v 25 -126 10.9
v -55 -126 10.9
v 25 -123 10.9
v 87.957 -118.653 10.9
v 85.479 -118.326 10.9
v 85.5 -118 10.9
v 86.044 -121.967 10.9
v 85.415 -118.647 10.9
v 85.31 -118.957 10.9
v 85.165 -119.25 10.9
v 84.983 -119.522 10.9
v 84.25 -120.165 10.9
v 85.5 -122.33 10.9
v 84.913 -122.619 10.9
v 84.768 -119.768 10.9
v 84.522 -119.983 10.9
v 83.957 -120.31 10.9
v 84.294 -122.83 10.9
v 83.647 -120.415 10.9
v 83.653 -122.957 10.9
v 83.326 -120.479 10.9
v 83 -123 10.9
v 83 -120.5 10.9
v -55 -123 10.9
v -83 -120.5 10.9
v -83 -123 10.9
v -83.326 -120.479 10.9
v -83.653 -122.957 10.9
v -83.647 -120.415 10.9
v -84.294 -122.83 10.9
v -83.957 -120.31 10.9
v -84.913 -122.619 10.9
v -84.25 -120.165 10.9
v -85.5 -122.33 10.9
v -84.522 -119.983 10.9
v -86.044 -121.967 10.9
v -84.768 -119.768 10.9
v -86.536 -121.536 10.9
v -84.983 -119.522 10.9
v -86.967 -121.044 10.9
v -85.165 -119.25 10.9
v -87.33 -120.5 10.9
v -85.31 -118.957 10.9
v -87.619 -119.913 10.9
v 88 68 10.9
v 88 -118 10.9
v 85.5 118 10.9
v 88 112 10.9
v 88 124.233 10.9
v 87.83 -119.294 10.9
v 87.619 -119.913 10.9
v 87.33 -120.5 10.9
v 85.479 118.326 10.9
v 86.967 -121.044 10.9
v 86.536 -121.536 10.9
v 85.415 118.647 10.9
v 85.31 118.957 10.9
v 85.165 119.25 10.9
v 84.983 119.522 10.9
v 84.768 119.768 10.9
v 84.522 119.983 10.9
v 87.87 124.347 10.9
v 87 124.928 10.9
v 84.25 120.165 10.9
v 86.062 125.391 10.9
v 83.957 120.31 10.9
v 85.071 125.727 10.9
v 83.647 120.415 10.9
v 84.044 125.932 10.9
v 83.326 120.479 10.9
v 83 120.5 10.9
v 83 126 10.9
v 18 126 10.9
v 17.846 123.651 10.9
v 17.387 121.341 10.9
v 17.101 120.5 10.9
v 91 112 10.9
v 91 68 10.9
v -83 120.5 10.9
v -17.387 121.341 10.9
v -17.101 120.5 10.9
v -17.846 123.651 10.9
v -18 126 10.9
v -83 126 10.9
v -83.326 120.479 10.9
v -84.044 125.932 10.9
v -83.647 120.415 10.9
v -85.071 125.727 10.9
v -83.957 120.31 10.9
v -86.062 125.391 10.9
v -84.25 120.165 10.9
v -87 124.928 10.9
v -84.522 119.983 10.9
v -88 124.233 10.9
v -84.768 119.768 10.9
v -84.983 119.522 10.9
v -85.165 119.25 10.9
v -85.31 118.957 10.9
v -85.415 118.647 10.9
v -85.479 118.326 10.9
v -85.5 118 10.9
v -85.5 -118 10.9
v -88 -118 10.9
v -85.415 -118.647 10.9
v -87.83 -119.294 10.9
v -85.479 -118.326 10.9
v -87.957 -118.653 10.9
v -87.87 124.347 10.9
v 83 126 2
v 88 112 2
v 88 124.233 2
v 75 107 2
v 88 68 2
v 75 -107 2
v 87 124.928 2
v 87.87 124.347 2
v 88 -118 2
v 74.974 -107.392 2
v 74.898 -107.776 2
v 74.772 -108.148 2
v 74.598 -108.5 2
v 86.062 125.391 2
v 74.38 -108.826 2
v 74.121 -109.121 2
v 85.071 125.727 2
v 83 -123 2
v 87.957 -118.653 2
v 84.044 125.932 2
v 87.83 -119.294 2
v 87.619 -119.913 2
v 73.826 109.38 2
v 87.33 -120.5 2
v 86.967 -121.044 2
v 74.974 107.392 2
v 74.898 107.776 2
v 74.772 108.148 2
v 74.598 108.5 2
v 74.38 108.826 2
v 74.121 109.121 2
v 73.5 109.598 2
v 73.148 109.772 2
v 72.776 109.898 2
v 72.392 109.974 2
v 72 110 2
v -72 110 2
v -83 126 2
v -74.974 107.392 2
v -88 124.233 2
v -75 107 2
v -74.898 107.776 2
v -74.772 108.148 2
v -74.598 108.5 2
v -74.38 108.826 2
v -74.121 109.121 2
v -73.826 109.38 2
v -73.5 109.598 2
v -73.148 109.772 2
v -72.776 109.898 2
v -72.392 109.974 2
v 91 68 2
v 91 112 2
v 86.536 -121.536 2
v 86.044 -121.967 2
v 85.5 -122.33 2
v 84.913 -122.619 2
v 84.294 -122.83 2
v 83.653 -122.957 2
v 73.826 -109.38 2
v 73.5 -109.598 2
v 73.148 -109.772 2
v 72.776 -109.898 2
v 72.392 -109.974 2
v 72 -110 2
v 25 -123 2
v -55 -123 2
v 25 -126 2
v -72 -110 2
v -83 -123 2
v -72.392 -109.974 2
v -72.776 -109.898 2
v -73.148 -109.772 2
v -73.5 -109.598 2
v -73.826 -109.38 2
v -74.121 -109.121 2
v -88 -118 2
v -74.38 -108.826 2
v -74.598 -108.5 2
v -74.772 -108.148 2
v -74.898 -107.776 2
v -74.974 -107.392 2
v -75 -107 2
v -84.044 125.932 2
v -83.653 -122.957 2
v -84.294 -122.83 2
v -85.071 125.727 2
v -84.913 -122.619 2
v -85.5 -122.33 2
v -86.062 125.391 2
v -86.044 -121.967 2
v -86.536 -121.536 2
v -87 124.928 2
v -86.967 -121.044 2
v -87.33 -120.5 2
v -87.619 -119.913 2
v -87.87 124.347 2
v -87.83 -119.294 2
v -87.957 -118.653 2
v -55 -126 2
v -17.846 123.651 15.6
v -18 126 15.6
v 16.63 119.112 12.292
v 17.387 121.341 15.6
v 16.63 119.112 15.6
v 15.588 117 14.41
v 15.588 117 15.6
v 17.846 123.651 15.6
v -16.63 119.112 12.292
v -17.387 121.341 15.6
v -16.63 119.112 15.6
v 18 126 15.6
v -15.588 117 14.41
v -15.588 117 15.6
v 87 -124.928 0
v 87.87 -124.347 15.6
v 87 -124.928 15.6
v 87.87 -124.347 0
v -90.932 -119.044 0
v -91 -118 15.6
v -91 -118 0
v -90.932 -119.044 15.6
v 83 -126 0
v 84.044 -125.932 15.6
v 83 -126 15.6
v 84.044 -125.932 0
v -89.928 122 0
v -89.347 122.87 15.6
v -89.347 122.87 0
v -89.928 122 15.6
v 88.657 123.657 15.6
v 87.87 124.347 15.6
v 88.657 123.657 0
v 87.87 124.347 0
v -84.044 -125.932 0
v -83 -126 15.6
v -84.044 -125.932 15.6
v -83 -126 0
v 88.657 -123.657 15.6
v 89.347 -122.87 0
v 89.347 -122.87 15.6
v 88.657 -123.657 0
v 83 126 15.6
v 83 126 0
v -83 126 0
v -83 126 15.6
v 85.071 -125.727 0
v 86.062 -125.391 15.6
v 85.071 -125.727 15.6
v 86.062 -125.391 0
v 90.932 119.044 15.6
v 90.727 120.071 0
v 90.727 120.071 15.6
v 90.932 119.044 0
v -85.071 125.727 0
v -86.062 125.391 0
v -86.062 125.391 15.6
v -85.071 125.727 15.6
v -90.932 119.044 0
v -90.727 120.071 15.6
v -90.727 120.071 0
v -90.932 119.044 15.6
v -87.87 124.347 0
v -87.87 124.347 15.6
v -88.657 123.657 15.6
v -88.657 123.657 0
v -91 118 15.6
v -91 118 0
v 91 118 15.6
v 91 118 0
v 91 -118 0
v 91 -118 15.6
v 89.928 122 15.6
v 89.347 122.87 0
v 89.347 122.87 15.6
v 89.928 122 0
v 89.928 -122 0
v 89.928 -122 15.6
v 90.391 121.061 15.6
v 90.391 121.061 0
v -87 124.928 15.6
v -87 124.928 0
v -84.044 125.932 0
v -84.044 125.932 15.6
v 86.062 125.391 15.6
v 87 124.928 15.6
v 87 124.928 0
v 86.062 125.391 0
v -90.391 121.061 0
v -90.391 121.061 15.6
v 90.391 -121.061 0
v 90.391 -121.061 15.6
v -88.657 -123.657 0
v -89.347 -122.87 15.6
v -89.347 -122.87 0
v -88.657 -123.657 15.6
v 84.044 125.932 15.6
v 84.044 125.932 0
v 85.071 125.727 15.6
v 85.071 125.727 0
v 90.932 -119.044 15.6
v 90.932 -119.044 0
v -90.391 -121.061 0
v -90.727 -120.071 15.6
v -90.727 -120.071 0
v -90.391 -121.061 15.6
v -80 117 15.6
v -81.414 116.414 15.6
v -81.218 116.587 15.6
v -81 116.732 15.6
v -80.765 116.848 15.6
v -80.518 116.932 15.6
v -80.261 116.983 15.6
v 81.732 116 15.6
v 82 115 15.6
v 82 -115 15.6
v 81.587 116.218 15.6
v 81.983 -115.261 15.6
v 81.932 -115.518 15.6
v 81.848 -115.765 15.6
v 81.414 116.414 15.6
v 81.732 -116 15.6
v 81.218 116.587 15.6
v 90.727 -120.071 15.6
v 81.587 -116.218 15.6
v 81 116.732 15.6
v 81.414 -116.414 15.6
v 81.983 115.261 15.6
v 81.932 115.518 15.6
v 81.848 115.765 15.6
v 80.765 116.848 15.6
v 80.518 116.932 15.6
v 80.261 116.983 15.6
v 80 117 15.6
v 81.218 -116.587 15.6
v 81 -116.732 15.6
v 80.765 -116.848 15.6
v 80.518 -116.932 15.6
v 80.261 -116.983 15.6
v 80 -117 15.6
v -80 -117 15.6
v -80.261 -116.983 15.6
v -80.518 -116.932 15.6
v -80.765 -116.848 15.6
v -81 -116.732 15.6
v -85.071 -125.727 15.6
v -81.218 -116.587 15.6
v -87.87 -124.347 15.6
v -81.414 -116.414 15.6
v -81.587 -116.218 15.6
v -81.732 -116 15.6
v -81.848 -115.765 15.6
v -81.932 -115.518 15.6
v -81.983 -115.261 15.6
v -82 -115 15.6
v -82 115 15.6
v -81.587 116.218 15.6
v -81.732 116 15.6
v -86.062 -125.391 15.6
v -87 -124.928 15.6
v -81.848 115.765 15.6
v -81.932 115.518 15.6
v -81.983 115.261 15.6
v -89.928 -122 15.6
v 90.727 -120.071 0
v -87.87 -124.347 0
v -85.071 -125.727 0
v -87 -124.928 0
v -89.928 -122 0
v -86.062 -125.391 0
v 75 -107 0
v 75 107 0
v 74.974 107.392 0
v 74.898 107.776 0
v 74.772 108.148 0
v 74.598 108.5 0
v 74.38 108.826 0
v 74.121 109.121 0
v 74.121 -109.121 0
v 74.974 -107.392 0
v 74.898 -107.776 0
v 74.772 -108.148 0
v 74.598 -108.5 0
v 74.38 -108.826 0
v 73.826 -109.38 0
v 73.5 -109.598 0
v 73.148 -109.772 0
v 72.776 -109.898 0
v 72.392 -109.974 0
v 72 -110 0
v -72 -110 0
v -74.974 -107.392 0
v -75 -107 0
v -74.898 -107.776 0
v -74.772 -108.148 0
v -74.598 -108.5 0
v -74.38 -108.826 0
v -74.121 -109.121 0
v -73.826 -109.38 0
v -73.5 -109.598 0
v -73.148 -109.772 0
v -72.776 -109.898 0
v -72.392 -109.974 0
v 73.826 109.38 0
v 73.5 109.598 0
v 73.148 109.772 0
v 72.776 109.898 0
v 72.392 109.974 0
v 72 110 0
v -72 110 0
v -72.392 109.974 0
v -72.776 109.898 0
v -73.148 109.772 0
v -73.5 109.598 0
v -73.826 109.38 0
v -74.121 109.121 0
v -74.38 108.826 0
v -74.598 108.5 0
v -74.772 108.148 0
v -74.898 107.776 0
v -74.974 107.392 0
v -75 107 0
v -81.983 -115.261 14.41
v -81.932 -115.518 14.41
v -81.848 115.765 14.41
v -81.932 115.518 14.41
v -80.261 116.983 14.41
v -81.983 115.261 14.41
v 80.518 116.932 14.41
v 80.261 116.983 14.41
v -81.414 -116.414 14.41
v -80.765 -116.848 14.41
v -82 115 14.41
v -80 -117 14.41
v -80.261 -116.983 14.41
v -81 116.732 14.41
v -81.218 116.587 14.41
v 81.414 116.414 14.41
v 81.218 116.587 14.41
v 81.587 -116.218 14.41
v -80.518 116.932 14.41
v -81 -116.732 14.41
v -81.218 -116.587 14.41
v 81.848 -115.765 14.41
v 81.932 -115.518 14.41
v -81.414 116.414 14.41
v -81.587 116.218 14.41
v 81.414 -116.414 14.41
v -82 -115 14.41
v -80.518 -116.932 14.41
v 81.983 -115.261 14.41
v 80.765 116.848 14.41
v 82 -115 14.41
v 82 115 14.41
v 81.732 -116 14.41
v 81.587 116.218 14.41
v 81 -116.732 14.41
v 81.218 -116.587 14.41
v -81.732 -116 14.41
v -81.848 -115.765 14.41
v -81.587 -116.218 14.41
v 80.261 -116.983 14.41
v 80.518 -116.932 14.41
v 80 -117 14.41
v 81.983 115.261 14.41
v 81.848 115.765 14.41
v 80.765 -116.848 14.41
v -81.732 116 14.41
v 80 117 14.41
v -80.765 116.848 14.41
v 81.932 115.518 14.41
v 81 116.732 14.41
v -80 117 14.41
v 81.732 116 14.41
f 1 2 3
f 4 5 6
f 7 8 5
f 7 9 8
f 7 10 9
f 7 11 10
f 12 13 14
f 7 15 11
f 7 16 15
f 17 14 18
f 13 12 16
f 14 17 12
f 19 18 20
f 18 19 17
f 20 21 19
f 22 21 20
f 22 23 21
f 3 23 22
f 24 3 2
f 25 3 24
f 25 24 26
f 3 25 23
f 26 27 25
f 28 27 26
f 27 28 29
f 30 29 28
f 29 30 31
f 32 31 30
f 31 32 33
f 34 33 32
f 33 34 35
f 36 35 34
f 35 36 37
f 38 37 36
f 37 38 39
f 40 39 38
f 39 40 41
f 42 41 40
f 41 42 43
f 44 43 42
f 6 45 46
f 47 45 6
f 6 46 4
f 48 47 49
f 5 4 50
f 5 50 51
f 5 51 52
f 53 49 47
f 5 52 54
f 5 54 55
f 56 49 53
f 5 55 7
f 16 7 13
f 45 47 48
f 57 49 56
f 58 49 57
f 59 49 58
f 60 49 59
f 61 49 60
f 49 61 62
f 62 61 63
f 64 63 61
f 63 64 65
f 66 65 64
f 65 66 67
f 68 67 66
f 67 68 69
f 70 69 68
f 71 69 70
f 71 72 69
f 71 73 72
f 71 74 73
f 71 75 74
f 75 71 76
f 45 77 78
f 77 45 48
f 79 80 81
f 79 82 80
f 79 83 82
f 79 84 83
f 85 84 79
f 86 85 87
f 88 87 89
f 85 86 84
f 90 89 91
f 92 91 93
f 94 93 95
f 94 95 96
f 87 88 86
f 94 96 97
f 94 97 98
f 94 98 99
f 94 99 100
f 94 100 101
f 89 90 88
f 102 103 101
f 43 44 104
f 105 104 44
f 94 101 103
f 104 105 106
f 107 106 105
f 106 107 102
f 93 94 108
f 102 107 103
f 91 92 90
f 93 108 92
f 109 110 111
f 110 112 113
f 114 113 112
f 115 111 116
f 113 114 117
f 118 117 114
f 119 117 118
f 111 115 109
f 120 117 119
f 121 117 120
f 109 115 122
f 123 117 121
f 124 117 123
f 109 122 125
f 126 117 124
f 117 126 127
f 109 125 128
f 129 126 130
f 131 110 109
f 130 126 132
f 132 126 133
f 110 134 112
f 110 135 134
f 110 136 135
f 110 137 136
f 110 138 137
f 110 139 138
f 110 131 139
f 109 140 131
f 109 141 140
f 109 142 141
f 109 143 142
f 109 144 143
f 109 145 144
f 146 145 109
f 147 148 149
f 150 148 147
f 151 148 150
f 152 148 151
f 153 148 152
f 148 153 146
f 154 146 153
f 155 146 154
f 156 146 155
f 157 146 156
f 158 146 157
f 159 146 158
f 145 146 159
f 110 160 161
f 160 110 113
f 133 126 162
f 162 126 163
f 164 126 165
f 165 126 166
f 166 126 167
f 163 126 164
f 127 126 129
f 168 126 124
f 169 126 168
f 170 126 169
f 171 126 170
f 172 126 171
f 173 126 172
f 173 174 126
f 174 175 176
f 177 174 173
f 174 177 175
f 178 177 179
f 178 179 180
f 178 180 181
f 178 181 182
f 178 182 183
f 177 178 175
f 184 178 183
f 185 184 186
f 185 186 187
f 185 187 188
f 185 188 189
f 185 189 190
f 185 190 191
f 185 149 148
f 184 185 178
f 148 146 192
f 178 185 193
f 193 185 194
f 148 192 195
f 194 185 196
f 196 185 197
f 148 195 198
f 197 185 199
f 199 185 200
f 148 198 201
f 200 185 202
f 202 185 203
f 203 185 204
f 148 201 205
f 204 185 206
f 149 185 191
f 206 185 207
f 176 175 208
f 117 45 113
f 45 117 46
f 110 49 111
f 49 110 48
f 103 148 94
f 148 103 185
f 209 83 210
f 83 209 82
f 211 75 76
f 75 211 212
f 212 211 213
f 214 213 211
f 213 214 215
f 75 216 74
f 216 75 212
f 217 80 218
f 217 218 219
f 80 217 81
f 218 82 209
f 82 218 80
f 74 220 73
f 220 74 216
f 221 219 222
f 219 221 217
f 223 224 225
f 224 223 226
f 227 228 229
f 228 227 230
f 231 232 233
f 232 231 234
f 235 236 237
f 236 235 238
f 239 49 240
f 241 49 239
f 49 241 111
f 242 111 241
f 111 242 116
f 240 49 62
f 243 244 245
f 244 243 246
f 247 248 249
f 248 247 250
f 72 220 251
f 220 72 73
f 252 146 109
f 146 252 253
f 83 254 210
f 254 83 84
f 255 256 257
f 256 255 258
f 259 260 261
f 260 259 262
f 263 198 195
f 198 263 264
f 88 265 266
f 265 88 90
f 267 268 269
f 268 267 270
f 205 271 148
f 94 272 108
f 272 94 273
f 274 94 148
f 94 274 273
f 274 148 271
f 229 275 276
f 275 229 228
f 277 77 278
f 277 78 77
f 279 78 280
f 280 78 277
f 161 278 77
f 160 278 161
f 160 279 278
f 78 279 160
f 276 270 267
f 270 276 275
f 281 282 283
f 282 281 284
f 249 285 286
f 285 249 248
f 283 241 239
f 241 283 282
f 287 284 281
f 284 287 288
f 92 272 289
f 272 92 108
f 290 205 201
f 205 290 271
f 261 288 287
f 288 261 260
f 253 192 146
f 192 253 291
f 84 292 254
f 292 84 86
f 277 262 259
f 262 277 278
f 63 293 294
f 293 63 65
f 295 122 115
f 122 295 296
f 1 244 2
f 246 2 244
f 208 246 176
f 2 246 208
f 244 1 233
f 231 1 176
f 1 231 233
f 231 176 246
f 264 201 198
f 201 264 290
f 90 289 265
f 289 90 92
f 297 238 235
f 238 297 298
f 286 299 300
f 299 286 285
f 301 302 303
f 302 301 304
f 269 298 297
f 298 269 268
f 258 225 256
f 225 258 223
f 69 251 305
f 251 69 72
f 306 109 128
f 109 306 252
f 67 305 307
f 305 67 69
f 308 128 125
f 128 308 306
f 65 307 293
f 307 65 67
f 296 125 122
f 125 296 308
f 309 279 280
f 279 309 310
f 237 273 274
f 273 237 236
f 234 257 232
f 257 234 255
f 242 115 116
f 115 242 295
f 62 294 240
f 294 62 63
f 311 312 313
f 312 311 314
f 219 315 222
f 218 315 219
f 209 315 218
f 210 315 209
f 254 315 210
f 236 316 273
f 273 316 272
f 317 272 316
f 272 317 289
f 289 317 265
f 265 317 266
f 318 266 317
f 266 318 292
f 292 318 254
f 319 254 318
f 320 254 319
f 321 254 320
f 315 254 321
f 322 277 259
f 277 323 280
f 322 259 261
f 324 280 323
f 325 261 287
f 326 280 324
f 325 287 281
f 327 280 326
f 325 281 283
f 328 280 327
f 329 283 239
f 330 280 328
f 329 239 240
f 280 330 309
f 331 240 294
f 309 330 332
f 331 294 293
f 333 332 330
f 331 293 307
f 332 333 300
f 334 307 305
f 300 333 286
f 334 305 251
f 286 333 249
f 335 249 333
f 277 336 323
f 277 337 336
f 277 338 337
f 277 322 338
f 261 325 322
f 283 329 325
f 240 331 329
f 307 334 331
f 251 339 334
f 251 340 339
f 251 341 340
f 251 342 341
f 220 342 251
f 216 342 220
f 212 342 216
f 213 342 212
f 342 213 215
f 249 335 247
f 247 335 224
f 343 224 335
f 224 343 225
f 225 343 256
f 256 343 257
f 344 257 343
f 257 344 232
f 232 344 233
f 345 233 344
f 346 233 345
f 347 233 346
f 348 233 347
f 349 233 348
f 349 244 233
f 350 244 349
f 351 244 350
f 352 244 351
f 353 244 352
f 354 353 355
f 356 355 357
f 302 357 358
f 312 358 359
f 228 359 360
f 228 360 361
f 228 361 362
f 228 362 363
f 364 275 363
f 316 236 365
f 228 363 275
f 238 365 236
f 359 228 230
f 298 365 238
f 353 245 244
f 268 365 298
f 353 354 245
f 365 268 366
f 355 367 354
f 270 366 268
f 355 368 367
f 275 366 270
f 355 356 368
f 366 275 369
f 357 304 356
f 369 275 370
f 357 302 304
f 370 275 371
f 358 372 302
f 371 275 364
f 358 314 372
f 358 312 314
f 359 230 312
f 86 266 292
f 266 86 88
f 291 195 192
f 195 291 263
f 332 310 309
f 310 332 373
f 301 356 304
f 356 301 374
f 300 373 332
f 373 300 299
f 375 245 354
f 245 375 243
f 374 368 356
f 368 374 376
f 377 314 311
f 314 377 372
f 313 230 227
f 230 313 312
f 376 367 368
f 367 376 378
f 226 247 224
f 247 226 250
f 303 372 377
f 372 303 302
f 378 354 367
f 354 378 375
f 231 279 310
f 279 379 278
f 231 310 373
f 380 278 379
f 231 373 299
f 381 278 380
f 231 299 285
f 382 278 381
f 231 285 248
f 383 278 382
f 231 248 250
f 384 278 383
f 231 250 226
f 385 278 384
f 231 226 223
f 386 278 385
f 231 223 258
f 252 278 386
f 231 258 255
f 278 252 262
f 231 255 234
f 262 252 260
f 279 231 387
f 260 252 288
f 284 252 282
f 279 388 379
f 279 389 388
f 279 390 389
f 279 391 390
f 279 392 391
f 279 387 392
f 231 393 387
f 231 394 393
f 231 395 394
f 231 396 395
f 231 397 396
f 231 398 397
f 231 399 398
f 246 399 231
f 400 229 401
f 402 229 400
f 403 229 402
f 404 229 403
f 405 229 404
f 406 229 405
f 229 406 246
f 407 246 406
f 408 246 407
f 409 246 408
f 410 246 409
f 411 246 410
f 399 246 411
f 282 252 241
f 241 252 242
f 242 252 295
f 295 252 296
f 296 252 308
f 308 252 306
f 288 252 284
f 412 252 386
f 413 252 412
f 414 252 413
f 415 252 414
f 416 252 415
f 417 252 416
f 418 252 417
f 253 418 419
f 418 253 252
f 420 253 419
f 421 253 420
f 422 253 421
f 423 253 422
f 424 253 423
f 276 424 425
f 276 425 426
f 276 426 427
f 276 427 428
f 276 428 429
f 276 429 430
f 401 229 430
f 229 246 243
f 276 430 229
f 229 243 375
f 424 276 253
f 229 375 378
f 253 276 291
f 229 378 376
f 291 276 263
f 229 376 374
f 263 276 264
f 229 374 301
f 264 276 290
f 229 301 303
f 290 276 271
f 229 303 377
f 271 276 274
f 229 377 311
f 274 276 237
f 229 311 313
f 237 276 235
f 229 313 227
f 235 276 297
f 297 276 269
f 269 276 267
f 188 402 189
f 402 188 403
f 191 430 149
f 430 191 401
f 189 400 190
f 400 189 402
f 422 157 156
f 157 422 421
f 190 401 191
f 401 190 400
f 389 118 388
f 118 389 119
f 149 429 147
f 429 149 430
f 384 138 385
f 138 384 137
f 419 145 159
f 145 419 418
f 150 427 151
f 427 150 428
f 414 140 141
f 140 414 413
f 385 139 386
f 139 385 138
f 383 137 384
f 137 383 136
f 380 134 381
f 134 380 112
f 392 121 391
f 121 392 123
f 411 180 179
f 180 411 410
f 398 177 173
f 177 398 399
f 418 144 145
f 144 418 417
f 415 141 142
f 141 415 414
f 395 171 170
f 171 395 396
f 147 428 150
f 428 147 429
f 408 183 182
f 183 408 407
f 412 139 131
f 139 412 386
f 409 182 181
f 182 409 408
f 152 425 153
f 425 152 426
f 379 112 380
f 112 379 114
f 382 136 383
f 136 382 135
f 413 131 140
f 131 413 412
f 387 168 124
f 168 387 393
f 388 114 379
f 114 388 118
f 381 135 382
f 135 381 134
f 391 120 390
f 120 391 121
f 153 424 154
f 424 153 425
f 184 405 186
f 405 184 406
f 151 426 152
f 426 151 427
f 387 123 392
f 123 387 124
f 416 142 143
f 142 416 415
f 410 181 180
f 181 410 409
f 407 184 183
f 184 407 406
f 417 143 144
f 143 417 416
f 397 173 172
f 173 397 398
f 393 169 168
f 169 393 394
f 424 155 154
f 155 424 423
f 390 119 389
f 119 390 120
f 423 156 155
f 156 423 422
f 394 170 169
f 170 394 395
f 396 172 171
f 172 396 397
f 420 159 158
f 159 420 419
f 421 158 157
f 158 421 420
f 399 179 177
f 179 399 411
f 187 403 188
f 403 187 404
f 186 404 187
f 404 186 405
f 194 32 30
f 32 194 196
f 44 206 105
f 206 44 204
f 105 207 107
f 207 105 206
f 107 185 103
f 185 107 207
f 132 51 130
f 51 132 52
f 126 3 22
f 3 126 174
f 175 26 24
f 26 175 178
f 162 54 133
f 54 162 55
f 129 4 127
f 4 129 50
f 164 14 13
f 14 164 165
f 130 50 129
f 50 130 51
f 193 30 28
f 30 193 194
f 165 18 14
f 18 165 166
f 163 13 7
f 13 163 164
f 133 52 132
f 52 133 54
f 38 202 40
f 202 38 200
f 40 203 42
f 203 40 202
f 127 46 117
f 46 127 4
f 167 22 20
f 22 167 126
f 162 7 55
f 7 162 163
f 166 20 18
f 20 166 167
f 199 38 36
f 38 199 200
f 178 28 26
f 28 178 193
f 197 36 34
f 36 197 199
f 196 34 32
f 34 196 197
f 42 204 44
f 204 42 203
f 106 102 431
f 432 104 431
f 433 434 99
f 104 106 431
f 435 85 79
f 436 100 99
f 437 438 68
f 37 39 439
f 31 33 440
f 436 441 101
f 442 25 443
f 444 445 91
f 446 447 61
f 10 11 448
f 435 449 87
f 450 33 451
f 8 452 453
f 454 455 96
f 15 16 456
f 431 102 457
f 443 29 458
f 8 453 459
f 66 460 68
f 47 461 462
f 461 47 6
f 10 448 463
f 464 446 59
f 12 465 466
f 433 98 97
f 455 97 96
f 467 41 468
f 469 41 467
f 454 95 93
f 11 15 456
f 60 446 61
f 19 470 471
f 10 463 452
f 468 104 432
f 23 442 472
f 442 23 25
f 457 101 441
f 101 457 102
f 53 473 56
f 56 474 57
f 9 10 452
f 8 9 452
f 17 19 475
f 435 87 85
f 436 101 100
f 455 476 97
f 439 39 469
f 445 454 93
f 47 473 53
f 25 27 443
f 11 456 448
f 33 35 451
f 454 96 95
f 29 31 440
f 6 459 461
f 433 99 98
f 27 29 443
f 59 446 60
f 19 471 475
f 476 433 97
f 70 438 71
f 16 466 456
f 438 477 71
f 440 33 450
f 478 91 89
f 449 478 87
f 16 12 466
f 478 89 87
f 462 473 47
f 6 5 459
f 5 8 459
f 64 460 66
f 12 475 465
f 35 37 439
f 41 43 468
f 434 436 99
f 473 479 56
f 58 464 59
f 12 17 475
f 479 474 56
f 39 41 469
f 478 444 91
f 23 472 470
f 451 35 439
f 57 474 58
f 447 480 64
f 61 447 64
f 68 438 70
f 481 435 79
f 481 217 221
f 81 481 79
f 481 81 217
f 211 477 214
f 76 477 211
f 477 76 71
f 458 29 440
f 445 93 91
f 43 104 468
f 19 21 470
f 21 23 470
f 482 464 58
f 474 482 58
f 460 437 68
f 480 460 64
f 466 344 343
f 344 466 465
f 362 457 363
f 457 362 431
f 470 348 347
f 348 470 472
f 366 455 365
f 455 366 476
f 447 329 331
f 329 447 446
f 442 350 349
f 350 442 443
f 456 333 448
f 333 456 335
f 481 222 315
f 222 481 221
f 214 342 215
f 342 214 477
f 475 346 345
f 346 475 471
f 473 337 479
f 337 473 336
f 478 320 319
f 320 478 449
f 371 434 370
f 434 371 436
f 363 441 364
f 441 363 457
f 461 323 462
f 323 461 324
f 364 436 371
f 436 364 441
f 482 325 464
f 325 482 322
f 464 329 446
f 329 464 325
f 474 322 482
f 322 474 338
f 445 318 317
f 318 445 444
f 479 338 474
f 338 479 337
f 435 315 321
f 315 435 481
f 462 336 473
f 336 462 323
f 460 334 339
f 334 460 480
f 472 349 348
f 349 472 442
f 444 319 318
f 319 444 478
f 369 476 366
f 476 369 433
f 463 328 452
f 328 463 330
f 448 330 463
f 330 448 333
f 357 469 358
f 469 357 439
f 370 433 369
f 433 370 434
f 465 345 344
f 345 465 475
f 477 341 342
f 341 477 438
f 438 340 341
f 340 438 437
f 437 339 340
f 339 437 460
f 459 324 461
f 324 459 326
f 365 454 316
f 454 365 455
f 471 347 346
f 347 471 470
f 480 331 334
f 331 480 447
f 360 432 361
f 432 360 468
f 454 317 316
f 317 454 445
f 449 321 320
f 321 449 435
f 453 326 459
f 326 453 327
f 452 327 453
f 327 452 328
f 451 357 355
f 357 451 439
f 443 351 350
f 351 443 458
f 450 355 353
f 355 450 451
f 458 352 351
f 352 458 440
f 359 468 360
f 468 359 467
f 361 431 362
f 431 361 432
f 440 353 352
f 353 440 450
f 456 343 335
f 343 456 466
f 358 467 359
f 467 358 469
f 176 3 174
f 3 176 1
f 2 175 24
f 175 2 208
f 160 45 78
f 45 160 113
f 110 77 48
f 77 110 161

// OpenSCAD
// file: surface-go-window-frame.scad
// Slide-in window frame for the Surface Go (1st gen) shop screen.
//
// The flat front face goes against the inside of the window glass, taped all
// the way round (12 mm VHB, e.g. 3M 5952). The tablet slides in from the open
// top edge, between the front lip and the back lip, and rests on the bottom wall.
// Right wall (as the tablet sits in landscape) has the Surface Connect slot.
//
// This file renders the landscape frame (open on a long edge).
// surface-go-window-frame-portrait.scad renders the portrait one (open on a
// short edge, charger at the bottom). surface-go-fit-test.scad prints a corner.
// All of them reuse the modules here, so change dimensions in this file only.
//
// Print front face down on the bed (clean, flat face for the tape). No supports:
// the back lip overhangs 2.5 mm flat, then slopes at 45 degrees.
// Units mm. Tablet coordinates as seen from the room in landscape: x right,
// y up, z from the glass (0) towards the room.
//
// Licence: CC BY-NC 4.0

/* [Tablet - Surface Go 1 is 245 x 175 x 8.3] */
tab_w = 245.0;
tab_h = 175.0;
tab_t = 8.3;
clear = 0.5;           // per side around the tablet edge
play_t = 0.6;          // front-back play so it slides easily
tab_r = 5.0;           // pocket corner radius (keep <= tablet's corner radius)

/* [Frame] */
wall = 3.0;            // side wall thickness
lip = 2.0;             // front lip thickness (glass side)
lip_over = 13.0;       // front lip covers the bezel this far (screen starts ~17 in)
back_flat = 2.5;       // back lip: flat overhang (prints without support)
back_over = 6.0;       // back lip: total reach over the tablet's back
back_skin = 1.2;       // back lip thickness above the 45 degree slope
finger_r = 18;         // finger notch in the back lip at the opening

/* [Cutouts - tablet edges as in landscape] */
cable_y = [-55, 25];   // Surface Connect slot in the right wall, y range
btn_x = [-112, -68];   // power + volume on the top edge, x range

$fn = 48;

// --- derived ---------------------------------------------------------------
pw = tab_w + 2 * clear;          // pocket 246 x 176
ph = tab_h + 2 * clear;
ow = pw + 2 * wall;              // outer 252 x 182
oh = ph + 2 * wall;
o_r = tab_r + wall;

z_pocket0 = lip;
z_back = lip + tab_t + play_t;   // tablet back / start of back lip
z_slope = z_back + (back_over - back_flat);
z_top = z_slope + back_skin;

win_w = pw - 2 * lip_over;       // 220 x 150 window (screen ~211 x 141)
win_h = ph - 2 * lip_over;

echo(str("outer ", ow, " x ", oh, " x ", z_top, "  window ", win_w, " x ", win_h,
         "  tape strip ", wall + lip_over));

// --- helpers ---------------------------------------------------------------
module rrect(w, h, r) {
    offset(r = r) square([w - 2 * r, h - 2 * r], center = true);
}

module box(x0, x1, y0, y1, z0, z1) {
    translate([x0, y0, z0]) cube([x1 - x0, y1 - y0, z1 - z0]);
}

module slab(inset, z) {
    translate([0, 0, z]) linear_extrude(0.01)
        rrect(pw - 2 * inset, ph - 2 * inset, max(tab_r - inset, 2));
}

// --- frame -----------------------------------------------------------------
// open = "top"  : landscape, tablet slides down onto its long bottom edge
// open = "left" : portrait (tablet turned clockwise), slides down onto its
//                 charger edge, so the charger slot ends up at the bottom
module frame(open = "top") {
    big = 50;
    difference() {
        linear_extrude(z_top) rrect(ow, oh, o_r);

        // screen window, all the way through
        translate([0, 0, -1]) linear_extrude(z_top + 2) rrect(win_w, win_h, 3);
        // tablet pocket
        translate([0, 0, z_pocket0]) linear_extrude(z_back - z_pocket0) rrect(pw, ph, tab_r);
        // back opening: flat overhang, then 45 degree slope, then straight up
        hull() {
            slab(back_flat, z_back - 0.01);
            slab(back_over, z_slope);
        }
        translate([0, 0, z_slope - 0.01])
            linear_extrude(z_top) rrect(pw - 2 * back_over, ph - 2 * back_over, 2);

        // the opening: wall removed between the lips, plus a finger notch
        if (open == "top") {
            box(-pw / 2, pw / 2, 0, big + ph / 2, z_pocket0, z_back);
            translate([0, oh / 2, z_back - 0.01]) cylinder(r = finger_r, h = z_top);
        } else {
            box(-big - pw / 2, 0, -ph / 2, ph / 2, z_pocket0, z_back);
            translate([-ow / 2, 0, z_back - 0.01]) cylinder(r = finger_r, h = z_top);
        }

        // Surface Connect slot (right edge of the tablet)
        box(pw / 2 - 1, ow / 2 + 1, cable_y[0], cable_y[1], z_pocket0, z_back);
        // power / volume access (top edge) when the top is closed
        if (open != "top")
            box(btn_x[0], btn_x[1], ph / 2 - 1, oh / 2 + 1, z_pocket0, z_back);
    }
}

// Shown as it hangs: portrait is turned so the opening is at the top.
module frame_landscape() frame("top");
module frame_portrait() rotate([0, 0, -90]) frame("left");

// bottom-right corner incl. the start of the charger slot (~25 min print):
// slide the tablet corner in from the cut side to check the fit
module test_corner() {
    intersection() {
        frame("top");
        box(70, 130, -95, -40, -1, 30);
    }
}

frame_landscape();
// main file
// Portrait version of the slide-in Surface Go window frame: open on a short
// edge at the top, charger slot at the bottom. Shown as it hangs.
// Dimensions come from surface-go-window-frame.scad.
use <surface-go-window-frame.scad>

frame_portrait();
